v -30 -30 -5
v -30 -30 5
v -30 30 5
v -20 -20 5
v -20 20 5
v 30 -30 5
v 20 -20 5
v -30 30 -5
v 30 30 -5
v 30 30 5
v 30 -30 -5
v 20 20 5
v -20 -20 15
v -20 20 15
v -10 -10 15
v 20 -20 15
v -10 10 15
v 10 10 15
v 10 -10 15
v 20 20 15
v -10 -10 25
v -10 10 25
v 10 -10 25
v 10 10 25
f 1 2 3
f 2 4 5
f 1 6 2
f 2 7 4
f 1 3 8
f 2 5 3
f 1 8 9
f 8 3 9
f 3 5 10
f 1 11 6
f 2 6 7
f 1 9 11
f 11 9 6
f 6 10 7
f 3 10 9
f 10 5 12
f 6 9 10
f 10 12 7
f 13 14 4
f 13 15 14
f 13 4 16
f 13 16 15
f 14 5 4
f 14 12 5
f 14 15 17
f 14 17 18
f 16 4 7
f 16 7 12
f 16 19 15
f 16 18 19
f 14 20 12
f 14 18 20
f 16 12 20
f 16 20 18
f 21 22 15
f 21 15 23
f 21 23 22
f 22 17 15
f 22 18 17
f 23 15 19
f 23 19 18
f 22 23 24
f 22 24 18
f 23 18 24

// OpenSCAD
// 3段の階段状ピラミッド
// 各板は中心を揃えて積み上げる

// 底段: 60x60x10
translate([0, 0, 0]) cube([60, 60, 10], center=true);

// 中段: 40x40x10 (底段の上に載せる)
translate([0, 0, 10]) cube([40, 40, 10], center=true);

// 上段: 20x20x10 (中段の上に載せる)
translate([0, 0, 20]) cube([20, 20, 10], center=true);
